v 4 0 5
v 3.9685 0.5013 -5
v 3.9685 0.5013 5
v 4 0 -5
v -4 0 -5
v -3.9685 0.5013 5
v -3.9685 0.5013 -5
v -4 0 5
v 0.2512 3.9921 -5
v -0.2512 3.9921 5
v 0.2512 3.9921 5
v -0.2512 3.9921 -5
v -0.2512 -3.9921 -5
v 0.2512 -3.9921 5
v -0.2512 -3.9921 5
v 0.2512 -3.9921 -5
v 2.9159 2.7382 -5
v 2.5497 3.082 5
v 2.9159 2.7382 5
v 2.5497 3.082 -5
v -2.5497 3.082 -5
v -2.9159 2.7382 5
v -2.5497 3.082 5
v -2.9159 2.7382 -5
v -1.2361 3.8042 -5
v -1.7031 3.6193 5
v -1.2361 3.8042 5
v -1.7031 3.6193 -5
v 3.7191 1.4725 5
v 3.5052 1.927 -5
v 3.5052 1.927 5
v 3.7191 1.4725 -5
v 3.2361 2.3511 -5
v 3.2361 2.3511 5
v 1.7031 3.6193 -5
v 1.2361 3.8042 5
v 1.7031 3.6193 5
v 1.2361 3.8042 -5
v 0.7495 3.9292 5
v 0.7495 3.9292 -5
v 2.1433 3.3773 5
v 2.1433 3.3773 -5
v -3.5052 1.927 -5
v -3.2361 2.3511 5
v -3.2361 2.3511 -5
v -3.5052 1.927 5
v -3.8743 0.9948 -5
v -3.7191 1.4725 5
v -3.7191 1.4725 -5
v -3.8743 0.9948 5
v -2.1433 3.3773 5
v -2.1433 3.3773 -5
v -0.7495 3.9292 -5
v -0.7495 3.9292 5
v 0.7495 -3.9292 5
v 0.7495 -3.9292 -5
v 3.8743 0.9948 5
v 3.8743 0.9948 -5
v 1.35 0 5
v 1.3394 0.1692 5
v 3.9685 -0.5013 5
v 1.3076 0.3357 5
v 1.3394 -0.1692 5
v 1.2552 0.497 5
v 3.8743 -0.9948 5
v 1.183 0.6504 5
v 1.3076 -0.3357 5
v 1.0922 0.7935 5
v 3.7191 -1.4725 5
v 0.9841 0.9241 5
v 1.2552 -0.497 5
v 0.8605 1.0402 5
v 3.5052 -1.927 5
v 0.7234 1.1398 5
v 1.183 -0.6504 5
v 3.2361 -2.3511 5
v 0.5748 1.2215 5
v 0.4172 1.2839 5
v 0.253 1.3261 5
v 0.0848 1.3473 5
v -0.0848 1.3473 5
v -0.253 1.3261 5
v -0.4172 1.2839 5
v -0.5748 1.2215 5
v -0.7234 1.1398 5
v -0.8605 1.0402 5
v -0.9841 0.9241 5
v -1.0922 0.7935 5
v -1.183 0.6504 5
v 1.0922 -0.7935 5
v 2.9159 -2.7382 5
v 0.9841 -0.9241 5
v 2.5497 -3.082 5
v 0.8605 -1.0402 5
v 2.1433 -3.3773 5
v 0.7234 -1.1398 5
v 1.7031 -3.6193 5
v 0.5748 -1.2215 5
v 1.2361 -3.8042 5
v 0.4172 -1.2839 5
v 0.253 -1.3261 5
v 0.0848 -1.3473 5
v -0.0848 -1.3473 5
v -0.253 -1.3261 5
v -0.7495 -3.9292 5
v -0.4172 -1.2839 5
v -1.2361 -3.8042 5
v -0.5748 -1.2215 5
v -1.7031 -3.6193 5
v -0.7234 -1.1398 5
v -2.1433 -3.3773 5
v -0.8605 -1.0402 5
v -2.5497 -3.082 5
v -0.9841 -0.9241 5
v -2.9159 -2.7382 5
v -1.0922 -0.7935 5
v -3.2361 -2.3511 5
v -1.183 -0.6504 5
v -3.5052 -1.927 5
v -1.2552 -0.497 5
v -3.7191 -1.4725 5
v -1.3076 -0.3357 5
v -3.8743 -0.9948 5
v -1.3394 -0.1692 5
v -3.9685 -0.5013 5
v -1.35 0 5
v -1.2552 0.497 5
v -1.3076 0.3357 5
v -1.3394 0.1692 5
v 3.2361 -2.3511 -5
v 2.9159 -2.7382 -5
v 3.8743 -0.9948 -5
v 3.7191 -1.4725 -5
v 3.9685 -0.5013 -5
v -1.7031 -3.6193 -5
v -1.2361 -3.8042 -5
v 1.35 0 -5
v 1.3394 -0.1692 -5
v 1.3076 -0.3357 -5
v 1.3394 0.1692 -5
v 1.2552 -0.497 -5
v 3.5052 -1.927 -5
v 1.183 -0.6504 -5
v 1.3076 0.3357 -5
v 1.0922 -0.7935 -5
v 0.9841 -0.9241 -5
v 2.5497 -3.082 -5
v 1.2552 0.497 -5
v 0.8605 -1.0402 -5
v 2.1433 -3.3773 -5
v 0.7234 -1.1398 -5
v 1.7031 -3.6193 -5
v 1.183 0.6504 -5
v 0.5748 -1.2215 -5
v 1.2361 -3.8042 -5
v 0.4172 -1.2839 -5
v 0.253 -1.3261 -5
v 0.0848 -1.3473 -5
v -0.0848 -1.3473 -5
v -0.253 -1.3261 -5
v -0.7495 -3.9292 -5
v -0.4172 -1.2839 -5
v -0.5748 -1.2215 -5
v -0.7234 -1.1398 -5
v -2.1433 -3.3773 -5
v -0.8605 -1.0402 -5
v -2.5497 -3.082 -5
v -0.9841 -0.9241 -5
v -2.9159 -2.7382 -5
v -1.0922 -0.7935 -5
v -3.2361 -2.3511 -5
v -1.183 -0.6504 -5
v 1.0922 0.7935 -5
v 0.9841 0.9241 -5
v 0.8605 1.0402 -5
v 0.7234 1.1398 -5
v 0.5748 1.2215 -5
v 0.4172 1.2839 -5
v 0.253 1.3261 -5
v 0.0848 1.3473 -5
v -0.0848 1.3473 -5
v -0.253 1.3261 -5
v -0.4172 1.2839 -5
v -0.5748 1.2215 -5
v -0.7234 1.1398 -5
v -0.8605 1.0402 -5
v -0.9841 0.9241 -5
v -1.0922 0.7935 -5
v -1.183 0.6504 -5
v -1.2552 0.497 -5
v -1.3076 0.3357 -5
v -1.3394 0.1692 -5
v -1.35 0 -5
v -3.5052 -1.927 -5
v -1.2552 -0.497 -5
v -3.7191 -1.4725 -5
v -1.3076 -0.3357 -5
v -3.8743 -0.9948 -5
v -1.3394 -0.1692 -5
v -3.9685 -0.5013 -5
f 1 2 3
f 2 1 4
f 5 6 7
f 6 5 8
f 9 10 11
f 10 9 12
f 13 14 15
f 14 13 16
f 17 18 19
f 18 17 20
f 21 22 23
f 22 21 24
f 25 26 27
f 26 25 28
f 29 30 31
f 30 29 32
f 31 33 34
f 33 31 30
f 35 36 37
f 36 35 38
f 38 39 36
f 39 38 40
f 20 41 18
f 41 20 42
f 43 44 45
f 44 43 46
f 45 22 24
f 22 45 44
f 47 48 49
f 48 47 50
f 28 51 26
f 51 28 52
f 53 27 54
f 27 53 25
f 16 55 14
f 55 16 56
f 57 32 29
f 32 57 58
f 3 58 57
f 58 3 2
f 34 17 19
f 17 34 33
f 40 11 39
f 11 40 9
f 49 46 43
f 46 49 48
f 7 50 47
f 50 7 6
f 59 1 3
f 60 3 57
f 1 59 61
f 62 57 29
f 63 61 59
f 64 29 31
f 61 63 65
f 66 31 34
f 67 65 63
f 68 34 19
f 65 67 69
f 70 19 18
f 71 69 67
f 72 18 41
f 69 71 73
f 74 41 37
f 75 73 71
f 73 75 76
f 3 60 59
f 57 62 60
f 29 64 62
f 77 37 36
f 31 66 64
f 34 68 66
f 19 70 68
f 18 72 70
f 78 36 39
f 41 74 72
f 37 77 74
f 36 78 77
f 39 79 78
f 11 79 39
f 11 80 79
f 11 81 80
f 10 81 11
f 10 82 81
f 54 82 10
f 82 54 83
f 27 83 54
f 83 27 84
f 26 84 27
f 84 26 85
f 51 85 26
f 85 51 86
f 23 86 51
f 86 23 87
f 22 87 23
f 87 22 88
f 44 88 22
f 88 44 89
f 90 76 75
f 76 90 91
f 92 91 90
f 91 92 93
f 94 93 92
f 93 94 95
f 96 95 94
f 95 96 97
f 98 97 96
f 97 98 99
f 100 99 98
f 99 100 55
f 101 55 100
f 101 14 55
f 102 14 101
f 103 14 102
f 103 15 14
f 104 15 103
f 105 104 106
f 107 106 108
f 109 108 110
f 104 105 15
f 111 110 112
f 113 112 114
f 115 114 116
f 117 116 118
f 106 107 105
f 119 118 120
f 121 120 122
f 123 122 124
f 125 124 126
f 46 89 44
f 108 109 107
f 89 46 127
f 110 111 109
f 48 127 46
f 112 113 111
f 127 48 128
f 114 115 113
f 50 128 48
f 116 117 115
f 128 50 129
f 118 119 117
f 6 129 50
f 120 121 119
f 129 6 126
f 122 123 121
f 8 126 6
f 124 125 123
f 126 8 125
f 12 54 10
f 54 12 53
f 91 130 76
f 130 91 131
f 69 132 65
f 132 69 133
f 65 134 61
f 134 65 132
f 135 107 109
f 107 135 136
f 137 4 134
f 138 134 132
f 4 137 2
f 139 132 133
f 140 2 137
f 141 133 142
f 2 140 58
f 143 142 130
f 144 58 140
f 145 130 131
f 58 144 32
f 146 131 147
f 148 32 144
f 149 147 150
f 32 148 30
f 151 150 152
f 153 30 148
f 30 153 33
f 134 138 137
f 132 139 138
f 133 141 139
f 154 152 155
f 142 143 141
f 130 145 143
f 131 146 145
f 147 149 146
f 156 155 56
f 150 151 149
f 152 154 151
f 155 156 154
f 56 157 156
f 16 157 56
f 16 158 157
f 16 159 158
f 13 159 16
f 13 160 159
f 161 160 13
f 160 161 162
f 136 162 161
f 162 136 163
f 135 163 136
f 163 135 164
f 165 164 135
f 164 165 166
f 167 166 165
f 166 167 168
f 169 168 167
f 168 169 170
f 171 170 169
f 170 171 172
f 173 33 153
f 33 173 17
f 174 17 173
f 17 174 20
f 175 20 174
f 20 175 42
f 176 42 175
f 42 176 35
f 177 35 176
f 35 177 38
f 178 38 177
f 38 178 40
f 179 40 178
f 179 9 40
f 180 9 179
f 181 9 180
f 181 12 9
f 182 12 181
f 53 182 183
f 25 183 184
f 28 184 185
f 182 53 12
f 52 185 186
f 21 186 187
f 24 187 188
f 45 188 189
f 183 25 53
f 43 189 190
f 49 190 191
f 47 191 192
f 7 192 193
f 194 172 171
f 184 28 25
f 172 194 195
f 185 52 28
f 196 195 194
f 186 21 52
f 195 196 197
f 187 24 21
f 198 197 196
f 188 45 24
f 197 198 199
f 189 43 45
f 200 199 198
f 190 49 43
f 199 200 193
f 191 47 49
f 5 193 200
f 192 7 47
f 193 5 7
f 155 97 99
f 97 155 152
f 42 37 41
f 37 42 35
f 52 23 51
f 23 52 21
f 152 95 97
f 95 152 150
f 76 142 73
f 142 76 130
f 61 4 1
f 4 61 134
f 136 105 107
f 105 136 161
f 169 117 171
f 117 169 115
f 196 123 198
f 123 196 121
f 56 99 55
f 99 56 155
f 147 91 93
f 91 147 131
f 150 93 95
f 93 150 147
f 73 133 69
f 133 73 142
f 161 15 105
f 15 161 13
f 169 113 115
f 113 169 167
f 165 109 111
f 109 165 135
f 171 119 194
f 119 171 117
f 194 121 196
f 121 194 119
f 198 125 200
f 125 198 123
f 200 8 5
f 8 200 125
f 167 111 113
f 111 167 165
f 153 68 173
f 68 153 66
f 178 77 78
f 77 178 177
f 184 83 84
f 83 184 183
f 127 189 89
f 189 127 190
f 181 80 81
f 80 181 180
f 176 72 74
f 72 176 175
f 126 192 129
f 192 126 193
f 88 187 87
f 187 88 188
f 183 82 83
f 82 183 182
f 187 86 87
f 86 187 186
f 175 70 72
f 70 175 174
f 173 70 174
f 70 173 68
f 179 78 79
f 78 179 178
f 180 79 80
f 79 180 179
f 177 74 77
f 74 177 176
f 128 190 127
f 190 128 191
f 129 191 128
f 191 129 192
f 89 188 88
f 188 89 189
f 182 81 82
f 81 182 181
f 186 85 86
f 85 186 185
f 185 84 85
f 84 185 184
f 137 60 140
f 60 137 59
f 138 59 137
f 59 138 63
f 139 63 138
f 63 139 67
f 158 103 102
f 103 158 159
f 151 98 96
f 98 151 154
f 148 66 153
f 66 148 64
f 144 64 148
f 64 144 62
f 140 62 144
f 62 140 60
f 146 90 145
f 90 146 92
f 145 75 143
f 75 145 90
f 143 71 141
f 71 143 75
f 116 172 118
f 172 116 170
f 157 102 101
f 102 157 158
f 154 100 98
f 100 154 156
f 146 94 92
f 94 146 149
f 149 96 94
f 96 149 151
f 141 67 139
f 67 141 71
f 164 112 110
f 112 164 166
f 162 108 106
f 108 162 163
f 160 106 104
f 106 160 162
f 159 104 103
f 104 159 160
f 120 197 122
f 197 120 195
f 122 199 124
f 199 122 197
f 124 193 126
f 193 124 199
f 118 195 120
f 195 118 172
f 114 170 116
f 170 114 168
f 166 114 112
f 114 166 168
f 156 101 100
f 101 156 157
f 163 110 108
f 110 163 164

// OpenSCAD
$fn = 50;


difference() {
	union() {
		translate(v = [0, 0, -5.0000000000]) {
			cylinder(h = 10, r = 4.0000000000);
		}
	}
	union() {
		translate(v = [0, 0, -100.0000000000]) {
			cylinder(h = 200, r = 1.3500000000);
		}
	}
}
